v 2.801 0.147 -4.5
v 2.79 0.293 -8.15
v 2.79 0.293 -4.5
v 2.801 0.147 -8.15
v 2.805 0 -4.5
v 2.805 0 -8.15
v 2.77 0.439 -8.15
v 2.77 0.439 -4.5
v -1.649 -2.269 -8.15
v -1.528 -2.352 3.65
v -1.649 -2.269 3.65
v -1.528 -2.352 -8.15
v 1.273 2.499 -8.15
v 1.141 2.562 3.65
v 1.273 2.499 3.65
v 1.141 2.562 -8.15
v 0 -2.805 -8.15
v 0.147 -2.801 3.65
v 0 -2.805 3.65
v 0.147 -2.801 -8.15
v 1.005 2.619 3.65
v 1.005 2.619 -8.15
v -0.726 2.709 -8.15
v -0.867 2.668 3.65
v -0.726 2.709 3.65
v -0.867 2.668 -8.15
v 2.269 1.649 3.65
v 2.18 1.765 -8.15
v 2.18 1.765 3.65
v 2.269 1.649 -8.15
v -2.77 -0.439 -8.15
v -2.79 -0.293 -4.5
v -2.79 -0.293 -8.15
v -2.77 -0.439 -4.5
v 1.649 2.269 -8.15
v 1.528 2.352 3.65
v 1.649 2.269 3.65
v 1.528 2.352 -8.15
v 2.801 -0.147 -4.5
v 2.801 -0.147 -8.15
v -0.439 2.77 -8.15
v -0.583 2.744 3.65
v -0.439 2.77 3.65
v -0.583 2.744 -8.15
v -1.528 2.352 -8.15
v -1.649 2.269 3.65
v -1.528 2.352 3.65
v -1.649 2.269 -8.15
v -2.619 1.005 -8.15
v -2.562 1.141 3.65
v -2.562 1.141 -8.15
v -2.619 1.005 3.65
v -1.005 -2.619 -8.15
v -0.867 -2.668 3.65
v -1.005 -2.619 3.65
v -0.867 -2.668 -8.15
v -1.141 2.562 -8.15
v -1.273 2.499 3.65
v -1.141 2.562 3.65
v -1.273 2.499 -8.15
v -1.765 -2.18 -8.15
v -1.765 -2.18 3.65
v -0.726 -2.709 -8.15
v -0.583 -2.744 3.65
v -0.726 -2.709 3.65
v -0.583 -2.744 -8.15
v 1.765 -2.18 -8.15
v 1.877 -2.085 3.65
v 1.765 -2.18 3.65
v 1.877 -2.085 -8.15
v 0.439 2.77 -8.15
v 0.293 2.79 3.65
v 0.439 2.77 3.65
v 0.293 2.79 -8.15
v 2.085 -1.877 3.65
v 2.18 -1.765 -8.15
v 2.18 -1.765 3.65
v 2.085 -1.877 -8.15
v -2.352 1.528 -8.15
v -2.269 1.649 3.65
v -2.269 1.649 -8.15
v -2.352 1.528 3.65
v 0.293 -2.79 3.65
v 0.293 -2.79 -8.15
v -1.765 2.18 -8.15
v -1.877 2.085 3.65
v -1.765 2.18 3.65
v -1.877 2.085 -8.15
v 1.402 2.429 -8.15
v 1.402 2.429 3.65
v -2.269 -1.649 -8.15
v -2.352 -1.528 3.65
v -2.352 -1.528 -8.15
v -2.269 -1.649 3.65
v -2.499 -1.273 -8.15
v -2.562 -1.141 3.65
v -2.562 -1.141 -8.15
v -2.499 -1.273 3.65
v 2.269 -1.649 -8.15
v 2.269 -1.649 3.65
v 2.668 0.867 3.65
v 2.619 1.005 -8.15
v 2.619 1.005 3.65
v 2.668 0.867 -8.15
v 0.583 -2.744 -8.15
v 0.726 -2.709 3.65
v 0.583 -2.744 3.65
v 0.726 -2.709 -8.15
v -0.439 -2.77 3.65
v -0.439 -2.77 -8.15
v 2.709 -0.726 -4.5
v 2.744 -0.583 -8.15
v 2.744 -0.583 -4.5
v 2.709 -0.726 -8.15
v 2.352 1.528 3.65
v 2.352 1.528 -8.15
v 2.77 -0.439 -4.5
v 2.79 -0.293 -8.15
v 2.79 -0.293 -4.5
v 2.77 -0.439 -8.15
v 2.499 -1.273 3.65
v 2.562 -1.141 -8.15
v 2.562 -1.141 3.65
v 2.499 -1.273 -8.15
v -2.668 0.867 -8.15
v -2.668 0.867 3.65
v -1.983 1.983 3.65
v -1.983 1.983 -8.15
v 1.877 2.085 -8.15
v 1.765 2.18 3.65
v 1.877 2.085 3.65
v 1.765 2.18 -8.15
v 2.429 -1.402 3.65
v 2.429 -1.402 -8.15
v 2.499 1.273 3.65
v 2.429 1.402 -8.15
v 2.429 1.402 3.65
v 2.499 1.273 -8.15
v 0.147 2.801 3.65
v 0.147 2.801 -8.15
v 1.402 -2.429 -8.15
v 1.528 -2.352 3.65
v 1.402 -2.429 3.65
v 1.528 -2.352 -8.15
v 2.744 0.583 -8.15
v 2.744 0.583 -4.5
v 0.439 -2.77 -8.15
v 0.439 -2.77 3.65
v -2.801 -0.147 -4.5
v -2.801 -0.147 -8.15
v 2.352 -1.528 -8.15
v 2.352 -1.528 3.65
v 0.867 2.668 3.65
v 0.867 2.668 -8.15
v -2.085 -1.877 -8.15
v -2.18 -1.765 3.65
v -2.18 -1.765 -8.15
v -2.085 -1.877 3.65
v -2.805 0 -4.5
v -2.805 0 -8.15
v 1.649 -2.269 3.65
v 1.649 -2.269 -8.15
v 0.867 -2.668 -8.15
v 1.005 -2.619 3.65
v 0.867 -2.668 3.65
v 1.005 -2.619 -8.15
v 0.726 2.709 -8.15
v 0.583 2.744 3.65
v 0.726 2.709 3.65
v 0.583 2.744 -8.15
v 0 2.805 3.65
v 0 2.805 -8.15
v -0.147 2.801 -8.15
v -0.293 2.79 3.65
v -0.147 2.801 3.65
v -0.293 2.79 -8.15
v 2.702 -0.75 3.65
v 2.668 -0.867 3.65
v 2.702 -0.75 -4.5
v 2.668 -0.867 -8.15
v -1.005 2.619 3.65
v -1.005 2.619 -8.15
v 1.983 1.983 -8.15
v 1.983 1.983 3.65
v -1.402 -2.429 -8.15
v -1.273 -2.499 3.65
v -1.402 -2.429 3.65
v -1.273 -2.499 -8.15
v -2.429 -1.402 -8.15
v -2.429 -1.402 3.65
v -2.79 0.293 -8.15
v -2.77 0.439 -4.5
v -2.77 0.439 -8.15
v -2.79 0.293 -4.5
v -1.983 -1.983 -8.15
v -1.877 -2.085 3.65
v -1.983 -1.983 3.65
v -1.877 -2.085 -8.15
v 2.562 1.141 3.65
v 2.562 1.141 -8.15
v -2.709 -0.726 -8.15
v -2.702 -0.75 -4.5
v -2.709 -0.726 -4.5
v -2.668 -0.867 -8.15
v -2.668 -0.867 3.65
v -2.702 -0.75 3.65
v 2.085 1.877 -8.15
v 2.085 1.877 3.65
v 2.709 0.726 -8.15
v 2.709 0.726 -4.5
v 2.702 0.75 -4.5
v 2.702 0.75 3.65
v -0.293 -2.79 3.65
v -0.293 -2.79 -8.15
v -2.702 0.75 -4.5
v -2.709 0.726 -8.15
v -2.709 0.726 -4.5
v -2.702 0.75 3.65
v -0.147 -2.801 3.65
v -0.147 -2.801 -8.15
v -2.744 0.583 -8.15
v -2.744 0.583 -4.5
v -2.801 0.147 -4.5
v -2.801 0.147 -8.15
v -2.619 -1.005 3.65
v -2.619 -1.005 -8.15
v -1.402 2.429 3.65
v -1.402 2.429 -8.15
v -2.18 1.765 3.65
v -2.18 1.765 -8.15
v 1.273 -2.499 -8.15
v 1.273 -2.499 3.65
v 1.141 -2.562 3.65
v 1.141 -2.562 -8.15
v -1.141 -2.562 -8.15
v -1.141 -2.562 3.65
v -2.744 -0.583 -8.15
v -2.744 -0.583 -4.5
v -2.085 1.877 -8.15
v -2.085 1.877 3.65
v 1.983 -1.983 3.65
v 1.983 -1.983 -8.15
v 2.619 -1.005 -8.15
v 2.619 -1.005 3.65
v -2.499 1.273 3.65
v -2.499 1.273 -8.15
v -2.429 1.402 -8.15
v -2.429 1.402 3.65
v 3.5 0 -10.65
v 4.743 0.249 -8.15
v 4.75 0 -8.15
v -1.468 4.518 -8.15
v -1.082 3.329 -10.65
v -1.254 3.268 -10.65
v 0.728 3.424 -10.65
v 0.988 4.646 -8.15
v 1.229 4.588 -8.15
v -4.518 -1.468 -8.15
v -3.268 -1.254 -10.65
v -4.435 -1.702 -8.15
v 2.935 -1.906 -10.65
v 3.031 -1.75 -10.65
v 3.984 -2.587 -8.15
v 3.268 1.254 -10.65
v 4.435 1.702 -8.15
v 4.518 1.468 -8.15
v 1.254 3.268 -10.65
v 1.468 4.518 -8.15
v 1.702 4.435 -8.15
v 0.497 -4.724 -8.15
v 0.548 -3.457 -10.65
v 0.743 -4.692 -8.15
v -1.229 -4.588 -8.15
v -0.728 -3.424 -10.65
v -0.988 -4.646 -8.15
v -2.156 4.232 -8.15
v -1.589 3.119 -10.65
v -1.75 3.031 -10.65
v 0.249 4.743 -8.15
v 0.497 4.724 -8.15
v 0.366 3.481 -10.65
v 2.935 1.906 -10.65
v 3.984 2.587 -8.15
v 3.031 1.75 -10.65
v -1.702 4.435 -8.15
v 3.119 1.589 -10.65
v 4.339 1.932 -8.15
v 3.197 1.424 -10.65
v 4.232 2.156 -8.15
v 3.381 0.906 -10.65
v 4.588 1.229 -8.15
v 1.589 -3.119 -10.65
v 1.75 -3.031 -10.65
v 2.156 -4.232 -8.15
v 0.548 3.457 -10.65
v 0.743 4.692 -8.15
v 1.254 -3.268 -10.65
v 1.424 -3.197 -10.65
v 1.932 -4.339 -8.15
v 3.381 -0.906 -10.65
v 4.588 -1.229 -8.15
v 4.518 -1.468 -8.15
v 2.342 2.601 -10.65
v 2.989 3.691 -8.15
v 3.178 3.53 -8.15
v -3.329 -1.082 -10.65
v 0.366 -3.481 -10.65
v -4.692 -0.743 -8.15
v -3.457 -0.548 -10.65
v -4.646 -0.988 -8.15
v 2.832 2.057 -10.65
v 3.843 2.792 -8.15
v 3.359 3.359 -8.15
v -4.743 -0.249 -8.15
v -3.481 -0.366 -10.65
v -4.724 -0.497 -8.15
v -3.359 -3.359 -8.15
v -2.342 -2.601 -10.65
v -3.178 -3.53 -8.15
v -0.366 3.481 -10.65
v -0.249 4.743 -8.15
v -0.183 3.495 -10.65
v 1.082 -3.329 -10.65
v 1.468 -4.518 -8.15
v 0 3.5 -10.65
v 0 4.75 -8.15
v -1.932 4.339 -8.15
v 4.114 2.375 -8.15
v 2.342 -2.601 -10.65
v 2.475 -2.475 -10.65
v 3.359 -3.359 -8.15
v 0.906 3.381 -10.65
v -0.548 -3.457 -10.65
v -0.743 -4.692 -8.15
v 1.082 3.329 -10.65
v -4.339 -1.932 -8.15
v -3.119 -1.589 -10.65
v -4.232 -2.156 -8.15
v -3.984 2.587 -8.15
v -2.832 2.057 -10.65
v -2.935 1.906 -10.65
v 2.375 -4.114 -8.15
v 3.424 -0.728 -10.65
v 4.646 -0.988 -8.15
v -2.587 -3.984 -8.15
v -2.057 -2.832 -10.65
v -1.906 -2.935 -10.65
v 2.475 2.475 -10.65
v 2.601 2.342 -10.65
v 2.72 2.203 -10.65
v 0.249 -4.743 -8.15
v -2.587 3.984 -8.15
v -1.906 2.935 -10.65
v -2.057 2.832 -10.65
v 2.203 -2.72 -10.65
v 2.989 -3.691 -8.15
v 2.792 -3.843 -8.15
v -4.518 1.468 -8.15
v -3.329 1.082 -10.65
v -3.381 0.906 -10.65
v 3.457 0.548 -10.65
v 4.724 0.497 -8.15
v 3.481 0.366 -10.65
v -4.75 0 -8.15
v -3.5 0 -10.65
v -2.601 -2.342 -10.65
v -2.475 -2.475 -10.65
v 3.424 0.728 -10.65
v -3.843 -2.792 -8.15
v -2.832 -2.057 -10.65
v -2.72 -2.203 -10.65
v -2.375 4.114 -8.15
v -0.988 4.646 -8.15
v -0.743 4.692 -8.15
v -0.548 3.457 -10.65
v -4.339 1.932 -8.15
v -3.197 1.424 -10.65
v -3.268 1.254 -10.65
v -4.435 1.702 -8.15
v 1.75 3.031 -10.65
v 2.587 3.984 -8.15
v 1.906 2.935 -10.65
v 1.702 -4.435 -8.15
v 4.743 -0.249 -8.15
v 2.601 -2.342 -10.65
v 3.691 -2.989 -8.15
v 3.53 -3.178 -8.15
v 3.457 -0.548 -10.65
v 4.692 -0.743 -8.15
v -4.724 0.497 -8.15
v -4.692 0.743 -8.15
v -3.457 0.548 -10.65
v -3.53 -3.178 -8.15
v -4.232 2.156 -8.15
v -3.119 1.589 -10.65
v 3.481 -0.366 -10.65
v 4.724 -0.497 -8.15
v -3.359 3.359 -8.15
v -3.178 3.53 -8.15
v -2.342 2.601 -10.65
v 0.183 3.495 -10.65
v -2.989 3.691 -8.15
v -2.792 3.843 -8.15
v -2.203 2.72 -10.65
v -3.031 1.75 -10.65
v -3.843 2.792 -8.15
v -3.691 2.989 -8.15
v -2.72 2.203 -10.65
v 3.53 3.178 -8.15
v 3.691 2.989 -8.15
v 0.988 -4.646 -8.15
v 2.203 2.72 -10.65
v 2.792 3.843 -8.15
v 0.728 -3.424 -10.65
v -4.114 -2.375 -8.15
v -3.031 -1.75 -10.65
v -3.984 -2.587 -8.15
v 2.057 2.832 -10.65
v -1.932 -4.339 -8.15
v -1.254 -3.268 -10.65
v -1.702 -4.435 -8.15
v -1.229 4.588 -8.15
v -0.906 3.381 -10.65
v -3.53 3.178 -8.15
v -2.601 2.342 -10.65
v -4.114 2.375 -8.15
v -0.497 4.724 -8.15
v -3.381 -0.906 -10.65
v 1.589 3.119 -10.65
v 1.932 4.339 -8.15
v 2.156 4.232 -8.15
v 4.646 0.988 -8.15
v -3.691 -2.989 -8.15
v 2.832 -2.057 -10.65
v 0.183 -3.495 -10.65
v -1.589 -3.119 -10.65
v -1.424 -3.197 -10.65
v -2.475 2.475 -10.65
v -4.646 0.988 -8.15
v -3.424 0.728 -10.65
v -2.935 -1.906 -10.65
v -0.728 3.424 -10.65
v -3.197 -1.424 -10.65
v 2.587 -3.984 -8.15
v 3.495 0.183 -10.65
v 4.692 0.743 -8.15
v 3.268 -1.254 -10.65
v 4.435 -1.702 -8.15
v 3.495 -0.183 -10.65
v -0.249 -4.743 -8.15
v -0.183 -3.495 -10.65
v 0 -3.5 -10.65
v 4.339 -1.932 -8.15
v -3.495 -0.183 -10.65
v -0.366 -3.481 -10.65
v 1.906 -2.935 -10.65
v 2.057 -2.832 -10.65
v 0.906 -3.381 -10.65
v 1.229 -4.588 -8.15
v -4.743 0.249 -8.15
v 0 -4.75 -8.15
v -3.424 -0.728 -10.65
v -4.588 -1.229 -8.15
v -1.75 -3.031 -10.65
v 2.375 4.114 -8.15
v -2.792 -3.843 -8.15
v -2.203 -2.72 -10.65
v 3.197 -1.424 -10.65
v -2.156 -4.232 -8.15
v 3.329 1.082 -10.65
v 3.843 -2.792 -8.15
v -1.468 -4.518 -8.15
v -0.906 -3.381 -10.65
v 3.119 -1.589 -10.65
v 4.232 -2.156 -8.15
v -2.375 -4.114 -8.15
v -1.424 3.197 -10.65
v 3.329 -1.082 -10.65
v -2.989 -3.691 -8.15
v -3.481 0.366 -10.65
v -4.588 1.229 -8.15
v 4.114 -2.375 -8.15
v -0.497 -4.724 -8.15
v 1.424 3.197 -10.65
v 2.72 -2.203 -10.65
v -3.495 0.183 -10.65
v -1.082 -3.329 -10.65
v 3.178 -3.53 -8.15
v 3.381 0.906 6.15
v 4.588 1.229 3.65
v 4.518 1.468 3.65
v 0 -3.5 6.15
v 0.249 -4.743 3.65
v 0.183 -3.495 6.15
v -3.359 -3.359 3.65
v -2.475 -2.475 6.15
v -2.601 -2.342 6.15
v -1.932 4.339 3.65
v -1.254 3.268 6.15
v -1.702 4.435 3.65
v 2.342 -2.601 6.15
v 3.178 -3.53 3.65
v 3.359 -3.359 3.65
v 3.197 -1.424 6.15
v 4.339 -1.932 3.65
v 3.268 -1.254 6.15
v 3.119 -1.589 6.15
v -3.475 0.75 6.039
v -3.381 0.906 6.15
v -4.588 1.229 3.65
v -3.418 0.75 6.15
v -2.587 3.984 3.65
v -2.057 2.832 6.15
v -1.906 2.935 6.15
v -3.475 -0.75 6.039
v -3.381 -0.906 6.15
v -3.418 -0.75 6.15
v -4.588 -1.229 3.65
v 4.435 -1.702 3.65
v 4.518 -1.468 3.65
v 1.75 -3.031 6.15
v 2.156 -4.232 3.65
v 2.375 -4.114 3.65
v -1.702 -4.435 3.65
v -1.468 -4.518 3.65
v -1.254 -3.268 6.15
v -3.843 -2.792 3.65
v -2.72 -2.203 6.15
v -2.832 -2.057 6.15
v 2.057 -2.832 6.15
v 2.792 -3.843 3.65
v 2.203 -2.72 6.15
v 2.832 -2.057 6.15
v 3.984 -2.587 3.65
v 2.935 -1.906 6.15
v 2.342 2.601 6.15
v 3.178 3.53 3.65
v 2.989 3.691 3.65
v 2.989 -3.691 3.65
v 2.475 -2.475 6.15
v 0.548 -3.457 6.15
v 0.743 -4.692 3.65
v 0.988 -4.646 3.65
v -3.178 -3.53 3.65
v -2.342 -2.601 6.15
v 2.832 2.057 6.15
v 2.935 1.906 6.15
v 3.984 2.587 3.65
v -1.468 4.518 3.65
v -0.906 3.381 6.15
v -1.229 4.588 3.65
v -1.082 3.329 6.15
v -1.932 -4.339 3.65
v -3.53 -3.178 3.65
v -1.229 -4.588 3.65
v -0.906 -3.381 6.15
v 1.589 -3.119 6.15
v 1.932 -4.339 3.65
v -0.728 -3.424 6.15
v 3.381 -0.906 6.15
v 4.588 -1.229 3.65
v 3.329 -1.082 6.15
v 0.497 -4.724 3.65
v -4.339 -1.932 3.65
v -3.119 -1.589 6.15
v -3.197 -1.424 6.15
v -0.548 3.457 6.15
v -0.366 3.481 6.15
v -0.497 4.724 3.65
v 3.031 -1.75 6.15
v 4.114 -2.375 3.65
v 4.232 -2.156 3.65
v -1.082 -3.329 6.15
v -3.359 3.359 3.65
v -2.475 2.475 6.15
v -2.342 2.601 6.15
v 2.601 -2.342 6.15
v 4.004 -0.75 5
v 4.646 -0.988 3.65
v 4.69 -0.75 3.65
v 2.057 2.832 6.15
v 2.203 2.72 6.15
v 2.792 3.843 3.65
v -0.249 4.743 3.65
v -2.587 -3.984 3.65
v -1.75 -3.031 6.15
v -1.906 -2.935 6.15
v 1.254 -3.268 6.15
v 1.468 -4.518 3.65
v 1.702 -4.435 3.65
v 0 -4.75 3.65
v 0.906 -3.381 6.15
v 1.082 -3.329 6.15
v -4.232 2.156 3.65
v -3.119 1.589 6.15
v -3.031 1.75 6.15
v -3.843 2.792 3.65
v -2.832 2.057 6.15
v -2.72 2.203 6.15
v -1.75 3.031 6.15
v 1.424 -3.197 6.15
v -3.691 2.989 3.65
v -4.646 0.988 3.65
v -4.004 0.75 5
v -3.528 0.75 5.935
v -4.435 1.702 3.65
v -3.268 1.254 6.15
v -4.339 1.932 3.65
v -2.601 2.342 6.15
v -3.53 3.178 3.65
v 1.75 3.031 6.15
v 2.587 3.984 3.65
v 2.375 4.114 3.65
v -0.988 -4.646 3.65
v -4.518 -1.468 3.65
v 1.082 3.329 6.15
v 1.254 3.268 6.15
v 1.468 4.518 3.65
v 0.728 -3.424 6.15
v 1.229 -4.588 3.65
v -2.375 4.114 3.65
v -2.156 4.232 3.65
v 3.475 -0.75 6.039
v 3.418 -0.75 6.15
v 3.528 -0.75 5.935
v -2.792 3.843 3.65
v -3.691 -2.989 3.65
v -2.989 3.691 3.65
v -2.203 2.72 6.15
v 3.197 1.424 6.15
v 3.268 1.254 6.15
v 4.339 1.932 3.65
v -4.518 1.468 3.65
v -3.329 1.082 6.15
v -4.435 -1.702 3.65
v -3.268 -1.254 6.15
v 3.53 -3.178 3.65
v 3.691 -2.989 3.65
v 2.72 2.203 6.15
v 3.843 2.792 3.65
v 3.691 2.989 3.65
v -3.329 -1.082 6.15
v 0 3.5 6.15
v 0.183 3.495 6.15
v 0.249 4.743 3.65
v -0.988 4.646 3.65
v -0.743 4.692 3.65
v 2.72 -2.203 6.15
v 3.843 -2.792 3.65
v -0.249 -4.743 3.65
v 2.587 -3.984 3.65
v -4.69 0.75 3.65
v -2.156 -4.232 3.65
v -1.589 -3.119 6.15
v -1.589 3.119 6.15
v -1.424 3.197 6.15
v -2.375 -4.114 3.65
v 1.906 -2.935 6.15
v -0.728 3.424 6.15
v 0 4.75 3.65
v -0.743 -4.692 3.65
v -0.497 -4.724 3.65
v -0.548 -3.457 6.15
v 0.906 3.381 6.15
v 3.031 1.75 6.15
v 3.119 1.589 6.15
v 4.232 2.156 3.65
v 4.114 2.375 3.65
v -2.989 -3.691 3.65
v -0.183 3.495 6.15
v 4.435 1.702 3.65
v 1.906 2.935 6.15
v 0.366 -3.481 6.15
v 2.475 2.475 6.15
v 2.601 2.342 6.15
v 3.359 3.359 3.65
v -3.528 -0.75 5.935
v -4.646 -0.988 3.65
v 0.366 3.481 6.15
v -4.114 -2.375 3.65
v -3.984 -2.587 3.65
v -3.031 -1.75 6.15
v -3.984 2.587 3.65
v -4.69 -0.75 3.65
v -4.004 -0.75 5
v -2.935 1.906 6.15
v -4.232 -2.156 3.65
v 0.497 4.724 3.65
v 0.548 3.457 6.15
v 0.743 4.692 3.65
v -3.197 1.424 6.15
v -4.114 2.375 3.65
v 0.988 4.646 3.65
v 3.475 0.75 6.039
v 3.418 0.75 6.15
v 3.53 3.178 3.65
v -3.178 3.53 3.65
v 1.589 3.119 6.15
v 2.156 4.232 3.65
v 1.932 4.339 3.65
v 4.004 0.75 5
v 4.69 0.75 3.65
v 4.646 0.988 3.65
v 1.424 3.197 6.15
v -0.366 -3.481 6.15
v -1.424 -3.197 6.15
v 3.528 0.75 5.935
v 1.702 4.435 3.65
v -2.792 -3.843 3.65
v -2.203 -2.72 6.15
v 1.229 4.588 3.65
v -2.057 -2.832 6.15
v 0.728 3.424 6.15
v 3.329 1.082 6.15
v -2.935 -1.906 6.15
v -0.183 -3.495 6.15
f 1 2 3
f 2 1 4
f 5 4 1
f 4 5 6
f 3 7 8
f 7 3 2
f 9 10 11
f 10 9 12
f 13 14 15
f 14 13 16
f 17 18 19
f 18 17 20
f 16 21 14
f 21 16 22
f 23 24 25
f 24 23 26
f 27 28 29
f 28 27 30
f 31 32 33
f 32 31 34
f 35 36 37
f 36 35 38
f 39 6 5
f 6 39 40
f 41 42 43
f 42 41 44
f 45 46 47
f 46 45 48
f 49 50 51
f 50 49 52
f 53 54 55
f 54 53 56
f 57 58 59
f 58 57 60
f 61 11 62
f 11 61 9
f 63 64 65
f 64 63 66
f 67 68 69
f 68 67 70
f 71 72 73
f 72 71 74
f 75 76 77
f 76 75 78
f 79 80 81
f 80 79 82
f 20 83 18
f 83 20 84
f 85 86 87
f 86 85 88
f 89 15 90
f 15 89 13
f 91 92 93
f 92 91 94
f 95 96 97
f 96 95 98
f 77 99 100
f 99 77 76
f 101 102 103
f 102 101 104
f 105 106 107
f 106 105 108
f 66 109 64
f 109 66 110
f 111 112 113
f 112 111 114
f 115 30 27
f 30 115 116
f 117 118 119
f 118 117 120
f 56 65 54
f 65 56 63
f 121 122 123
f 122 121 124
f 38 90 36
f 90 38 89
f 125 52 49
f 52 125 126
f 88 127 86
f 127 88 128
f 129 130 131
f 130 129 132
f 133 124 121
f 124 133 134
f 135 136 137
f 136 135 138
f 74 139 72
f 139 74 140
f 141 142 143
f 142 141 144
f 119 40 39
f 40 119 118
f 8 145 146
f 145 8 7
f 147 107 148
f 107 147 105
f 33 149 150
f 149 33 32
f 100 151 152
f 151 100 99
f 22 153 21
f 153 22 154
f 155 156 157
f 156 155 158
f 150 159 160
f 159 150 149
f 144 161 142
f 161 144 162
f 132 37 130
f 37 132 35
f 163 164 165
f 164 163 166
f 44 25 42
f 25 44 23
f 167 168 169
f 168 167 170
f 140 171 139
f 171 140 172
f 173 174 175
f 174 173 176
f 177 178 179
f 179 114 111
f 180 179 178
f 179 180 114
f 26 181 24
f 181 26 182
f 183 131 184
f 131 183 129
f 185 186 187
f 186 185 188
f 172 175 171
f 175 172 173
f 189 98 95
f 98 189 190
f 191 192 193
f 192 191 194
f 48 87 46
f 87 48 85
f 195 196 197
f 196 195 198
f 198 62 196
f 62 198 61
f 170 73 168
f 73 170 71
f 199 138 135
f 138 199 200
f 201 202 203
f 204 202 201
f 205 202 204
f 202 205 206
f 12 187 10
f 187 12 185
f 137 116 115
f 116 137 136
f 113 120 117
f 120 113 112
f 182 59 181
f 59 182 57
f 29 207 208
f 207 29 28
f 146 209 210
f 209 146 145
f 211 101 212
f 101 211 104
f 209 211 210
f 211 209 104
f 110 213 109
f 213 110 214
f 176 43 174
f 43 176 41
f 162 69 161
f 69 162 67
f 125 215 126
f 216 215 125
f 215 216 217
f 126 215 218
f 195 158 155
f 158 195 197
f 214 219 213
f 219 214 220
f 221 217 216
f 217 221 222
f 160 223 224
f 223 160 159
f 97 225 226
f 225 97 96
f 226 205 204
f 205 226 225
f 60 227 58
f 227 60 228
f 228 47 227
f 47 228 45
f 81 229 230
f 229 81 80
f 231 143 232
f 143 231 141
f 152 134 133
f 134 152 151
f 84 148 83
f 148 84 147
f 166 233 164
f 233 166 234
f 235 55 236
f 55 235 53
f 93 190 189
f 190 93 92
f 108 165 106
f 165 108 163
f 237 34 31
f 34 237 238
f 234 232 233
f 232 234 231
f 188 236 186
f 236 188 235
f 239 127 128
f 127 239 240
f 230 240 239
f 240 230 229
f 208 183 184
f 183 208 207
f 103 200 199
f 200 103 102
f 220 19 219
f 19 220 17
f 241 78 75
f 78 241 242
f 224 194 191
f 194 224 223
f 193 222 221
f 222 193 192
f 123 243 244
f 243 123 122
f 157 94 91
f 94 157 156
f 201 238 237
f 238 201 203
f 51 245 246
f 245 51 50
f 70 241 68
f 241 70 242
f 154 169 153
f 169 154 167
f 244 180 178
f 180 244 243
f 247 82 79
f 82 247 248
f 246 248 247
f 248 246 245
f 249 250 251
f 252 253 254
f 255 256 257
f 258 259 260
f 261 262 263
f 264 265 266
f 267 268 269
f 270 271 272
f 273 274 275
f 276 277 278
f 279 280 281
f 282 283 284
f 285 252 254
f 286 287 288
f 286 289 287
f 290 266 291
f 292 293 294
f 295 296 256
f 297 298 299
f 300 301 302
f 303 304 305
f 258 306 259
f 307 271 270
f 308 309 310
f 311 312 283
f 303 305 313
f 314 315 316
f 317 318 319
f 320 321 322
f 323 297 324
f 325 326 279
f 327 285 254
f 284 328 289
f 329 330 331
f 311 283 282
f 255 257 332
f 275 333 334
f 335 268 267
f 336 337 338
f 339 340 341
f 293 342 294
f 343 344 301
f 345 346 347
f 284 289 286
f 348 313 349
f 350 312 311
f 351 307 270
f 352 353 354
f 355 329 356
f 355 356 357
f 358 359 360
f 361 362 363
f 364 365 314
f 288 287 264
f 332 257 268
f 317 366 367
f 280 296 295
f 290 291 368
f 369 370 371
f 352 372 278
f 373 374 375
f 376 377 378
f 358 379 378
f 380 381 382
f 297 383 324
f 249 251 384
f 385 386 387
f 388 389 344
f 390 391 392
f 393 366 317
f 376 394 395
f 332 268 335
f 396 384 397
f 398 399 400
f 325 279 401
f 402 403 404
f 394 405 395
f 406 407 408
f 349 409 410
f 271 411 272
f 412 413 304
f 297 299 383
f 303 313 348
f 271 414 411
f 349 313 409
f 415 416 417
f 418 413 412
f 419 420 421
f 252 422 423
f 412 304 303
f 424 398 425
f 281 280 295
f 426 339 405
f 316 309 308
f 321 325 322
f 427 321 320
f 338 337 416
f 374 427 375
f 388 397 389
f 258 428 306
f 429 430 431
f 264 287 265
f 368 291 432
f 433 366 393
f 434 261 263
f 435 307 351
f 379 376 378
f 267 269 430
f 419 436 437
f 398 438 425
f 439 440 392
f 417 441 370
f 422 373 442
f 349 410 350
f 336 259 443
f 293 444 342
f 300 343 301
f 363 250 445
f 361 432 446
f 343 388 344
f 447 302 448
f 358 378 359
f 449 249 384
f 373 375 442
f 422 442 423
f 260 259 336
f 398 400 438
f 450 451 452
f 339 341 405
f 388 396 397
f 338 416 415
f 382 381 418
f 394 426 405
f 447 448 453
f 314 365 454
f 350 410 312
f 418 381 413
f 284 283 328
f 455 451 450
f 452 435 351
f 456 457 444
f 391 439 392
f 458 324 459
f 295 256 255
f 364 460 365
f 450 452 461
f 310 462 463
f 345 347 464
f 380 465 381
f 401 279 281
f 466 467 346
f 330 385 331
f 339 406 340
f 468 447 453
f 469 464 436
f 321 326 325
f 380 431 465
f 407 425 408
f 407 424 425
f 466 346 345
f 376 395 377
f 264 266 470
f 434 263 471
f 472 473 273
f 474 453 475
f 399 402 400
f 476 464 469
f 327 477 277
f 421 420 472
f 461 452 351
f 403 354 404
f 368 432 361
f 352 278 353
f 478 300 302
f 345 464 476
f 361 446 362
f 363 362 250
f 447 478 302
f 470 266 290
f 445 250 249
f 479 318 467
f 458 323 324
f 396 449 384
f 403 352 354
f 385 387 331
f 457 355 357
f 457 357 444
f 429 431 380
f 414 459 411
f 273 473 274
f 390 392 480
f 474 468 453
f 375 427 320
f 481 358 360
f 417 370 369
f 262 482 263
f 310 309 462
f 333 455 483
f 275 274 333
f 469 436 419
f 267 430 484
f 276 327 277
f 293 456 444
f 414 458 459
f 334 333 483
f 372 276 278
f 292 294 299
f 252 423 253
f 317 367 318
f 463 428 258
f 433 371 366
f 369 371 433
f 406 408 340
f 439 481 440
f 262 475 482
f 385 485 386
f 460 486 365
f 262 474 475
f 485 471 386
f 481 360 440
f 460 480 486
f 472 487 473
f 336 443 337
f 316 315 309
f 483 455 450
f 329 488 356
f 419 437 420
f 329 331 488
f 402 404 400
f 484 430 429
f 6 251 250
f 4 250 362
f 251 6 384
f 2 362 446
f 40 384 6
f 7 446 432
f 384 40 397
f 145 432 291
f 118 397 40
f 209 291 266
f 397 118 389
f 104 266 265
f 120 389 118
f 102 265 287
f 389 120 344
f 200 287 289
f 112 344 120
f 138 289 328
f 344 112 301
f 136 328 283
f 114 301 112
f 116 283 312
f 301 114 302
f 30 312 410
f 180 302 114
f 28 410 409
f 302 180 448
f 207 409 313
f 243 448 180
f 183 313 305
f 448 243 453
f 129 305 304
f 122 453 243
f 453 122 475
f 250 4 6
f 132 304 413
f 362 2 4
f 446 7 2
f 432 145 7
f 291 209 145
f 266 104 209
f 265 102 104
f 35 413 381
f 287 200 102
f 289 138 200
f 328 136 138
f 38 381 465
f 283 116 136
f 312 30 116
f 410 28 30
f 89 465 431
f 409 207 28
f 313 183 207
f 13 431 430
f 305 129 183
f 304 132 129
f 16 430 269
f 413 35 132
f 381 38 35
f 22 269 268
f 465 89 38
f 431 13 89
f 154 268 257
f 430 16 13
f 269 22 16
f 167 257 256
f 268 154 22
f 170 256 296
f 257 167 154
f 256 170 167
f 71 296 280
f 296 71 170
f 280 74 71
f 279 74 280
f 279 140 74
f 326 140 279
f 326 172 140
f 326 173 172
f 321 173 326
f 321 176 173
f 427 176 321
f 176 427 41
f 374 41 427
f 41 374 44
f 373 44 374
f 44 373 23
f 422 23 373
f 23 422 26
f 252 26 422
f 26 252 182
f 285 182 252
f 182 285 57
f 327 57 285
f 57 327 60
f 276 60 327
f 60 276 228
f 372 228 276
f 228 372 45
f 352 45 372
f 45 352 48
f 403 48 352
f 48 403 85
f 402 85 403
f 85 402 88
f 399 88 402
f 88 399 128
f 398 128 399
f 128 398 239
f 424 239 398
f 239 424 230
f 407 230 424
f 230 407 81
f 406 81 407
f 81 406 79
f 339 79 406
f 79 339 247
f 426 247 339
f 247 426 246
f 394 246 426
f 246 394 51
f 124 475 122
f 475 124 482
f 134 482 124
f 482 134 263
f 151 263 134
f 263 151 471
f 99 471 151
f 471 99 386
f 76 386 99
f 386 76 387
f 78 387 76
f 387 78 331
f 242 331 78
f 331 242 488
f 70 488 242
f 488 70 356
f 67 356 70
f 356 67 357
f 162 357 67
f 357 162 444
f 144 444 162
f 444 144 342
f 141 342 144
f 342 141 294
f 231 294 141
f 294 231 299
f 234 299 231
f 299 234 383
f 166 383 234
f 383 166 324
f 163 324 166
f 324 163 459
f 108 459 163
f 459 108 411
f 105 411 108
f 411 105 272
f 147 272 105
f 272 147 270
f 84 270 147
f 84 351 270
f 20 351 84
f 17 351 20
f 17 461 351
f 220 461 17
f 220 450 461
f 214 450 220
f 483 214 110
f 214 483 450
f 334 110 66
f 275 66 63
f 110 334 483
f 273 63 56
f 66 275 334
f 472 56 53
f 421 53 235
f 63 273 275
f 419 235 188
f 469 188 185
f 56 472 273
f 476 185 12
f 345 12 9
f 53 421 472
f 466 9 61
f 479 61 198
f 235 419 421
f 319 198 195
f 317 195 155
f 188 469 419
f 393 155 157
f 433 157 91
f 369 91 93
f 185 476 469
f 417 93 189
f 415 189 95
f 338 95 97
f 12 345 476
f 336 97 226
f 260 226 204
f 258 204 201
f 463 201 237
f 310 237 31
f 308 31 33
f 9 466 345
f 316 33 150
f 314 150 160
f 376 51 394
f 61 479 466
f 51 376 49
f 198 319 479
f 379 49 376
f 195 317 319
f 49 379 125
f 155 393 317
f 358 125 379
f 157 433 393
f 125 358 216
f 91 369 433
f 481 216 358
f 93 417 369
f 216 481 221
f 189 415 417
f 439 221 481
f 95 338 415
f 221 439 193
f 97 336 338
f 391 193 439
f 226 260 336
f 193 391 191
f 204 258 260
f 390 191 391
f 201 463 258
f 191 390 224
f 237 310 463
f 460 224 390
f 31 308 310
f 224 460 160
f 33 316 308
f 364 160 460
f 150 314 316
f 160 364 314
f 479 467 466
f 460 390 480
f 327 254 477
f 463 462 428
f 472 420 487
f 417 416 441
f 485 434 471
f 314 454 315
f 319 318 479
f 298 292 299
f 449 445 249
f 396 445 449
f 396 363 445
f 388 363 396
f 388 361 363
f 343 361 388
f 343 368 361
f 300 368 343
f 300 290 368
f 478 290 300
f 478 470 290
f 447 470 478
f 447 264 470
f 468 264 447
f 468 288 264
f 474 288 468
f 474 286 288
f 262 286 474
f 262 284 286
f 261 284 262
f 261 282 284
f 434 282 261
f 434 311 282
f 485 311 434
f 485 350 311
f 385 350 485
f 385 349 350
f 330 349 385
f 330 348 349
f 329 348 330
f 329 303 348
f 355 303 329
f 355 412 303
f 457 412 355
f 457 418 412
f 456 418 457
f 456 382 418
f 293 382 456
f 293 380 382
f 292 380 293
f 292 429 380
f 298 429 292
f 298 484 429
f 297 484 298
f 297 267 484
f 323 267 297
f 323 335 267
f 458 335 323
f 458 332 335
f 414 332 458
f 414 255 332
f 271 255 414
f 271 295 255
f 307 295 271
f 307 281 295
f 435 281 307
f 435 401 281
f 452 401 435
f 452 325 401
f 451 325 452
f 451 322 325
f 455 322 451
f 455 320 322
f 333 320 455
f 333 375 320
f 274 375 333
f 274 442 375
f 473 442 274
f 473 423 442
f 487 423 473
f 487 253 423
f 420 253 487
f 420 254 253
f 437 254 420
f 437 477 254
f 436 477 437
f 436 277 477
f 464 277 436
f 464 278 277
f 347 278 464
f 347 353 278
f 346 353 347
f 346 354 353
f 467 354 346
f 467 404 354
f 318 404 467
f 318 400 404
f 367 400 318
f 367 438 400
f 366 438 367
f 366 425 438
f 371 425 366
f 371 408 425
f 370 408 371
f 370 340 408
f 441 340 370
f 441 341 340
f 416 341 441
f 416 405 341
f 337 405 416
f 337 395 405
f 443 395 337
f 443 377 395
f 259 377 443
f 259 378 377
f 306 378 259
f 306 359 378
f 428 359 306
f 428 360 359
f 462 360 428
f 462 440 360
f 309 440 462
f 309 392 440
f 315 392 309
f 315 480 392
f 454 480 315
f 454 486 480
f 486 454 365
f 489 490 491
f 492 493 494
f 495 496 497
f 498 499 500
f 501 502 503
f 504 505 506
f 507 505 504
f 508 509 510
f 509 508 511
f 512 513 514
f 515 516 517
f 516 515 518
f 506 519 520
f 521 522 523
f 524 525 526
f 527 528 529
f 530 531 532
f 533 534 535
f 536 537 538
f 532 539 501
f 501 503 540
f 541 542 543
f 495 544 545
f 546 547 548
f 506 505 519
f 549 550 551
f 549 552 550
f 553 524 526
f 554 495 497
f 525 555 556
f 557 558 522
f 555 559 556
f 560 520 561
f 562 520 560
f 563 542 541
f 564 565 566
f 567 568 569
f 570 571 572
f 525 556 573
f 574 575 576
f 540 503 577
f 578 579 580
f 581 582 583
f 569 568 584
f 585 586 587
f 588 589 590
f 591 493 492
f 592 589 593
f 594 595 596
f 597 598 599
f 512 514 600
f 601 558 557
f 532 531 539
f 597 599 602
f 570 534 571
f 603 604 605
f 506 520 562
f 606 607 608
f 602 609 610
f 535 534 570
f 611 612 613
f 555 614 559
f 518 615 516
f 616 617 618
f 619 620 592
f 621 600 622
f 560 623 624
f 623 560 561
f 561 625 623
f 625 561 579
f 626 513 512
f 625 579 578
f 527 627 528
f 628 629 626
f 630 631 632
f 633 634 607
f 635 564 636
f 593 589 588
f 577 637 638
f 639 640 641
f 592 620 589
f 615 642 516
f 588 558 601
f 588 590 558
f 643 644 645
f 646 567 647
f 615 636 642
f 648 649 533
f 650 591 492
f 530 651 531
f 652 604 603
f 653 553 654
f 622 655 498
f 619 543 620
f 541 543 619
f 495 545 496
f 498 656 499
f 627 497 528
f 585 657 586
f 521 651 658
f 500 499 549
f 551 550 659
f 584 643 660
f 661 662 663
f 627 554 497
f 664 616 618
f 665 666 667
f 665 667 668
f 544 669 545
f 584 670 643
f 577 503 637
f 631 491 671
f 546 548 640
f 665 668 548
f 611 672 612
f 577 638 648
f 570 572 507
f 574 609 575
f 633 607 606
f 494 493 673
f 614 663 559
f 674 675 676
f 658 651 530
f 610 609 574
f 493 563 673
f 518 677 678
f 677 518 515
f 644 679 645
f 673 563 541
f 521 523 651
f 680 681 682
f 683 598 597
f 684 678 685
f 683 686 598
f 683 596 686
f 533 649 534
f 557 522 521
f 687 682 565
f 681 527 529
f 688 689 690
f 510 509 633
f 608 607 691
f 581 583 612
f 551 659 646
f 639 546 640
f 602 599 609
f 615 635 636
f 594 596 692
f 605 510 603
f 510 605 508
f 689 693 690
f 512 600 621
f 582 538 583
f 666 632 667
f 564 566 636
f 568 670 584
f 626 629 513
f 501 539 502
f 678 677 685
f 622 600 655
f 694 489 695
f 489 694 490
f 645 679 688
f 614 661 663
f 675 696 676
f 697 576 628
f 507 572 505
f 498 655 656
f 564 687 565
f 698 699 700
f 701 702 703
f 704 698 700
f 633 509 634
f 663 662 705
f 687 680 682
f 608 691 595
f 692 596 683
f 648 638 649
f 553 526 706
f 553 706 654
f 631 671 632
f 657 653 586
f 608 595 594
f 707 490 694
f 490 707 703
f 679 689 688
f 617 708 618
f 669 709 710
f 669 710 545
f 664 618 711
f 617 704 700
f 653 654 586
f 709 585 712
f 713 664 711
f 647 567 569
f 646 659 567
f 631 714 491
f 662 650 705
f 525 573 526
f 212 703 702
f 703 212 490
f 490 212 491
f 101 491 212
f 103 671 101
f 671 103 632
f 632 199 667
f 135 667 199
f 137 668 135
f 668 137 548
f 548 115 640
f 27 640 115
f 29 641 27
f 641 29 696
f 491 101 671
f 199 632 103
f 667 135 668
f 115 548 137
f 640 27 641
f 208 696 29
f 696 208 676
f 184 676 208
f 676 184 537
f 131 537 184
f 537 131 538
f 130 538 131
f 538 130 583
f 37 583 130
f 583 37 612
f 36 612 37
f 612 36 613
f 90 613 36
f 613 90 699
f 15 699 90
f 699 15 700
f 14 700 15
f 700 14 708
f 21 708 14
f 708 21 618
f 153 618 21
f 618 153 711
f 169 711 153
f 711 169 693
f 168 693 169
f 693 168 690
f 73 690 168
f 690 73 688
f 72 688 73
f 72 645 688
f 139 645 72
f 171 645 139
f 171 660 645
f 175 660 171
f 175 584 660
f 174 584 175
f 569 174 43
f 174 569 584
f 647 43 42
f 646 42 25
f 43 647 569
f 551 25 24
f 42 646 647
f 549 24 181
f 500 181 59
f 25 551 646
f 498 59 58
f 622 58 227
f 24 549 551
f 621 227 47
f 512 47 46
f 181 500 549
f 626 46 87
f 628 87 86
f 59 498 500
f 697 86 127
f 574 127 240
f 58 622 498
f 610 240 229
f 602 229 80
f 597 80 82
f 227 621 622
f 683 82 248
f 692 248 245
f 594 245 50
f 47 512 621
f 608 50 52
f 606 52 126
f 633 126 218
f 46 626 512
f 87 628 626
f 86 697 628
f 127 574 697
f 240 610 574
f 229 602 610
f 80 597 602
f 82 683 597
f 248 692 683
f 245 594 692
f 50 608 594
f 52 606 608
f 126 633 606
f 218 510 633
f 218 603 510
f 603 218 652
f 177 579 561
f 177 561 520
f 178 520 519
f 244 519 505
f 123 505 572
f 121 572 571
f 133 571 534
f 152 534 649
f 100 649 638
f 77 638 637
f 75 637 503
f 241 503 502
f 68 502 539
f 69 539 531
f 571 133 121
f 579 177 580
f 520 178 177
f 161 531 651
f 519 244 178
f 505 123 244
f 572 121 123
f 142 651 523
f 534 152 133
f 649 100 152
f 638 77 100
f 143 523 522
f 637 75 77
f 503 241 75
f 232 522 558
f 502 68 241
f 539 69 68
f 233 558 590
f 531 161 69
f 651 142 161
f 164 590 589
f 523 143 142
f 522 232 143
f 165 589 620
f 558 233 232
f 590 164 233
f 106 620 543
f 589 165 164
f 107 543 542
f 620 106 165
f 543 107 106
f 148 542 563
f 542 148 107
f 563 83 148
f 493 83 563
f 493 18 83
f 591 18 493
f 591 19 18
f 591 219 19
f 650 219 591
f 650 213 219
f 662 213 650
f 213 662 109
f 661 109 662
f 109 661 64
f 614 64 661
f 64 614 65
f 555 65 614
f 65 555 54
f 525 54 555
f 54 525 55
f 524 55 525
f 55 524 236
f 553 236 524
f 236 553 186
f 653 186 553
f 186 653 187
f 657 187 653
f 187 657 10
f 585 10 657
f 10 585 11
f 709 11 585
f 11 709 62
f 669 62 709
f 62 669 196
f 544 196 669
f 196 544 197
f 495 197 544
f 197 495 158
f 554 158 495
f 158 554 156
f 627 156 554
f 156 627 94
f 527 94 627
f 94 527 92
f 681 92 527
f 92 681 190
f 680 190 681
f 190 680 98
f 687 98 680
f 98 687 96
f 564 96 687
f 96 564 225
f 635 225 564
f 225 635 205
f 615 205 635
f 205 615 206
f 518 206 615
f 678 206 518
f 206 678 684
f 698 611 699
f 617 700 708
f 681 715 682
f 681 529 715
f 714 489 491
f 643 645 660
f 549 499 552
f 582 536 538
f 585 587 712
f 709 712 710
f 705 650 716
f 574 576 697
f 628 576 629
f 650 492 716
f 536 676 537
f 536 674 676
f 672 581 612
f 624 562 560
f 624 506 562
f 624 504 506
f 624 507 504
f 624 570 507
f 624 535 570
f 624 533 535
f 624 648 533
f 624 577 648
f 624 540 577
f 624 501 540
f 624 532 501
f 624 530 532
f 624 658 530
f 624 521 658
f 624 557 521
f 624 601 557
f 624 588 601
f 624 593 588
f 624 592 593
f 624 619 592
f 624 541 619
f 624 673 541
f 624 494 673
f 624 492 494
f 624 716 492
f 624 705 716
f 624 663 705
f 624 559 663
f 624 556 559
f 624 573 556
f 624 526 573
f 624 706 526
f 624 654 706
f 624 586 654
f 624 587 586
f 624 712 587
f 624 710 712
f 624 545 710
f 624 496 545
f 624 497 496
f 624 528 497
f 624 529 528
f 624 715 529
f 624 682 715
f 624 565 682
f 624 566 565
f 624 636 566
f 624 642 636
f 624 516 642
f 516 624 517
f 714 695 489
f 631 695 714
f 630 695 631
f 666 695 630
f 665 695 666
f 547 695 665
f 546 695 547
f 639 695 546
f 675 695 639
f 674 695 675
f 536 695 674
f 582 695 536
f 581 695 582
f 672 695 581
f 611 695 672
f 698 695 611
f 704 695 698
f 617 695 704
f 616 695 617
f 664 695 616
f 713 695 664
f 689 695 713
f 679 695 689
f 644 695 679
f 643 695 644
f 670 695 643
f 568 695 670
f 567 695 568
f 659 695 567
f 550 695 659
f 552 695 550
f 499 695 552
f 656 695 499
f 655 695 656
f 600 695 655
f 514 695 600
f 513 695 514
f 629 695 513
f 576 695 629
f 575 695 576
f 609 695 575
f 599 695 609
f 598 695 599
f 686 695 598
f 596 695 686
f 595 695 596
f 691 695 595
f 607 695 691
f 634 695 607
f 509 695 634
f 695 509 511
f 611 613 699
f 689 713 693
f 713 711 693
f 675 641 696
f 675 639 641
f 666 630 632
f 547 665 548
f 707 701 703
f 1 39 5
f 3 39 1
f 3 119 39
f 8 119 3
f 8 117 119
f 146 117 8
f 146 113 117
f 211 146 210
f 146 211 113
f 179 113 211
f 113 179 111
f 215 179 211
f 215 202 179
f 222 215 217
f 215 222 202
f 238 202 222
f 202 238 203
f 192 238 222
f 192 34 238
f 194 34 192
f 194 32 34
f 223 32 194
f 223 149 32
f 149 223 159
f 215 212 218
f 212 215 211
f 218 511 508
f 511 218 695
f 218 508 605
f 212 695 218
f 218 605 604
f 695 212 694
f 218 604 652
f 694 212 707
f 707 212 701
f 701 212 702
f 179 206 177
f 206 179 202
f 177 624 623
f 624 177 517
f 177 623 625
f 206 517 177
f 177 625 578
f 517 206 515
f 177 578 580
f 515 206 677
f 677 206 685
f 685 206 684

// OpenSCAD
// file: lib.scad
PULLEY_DIAMETER      =  22;
PULLEY_EXTRA         =   3         -2;
PULLEY_AXIS_DIAMETER =   8;

BALL_DIAMETER        =   4.5;
BALLS_PER_TURN       =  14;
BALLS_SPACING        =  19 / 3;

WALL_THICKNESS       =   3;
HANDLE_LENGTH        = 100;
PLAY                 =   0.13;

// computed
R = PULLEY_DIAMETER/2 + BALL_DIAMETER/2;
PULLEYS_DISTANCE = HANDLE_LENGTH - PULLEY_DIAMETER*.75;

ATOM = 0.01;
$fn = 120;


module pulley_struct() {
    th = 2.5;
    cylinder(d=PULLEY_AXIS_DIAMETER + th*2, h=BALL_DIAMETER*5, center=true);

    for (i=[0:2:BALLS_PER_TURN-1]) {
        rotate([0, 0, 360/BALLS_PER_TURN * (i + .5*0)])
        translate([0, -PULLEY_DIAMETER/2, 0])
        cube([th, PULLEY_DIAMETER, BALL_DIAMETER*5], center= true);
    }
    
    difference() {
        cylinder(d=PULLEY_DIAMETER + PULLEY_EXTRA*2, h= BALL_DIAMETER*5-ATOM, center=true);
        cylinder(d=PULLEY_DIAMETER-th*1.5 , h=BALL_DIAMETER*5, center=true);
    }    
}

module pulley_teeth() {
    difference() {
        cylinder(d=PULLEY_DIAMETER + PULLEY_EXTRA, h= BALL_DIAMETER+PLAY*2*0);

        for (i=[0:1:BALLS_PER_TURN-1]) {
            rotate([0, 0, 360/BALLS_PER_TURN*i])
            translate([R-.5, 0, BALL_DIAMETER/2+PLAY*0]) {
                sphere(d=BALL_DIAMETER + PLAY*2, $fn=60);
            }
        }

        cylinder(d=PULLEY_AXIS_DIAMETER+PLAY*4, h=BALL_DIAMETER*5, center=true);
    }
}

module pulley() {
    intersection() {
        pulley_struct();
        pulley_teeth();
    }
}

module chain() {
    for (i=[BALLS_PER_TURN/2:1:BALLS_PER_TURN]) {
        rotate([0, 0, 360/BALLS_PER_TURN*i])
        translate([R, 0, BALL_DIAMETER/2+PLAY]) {
            sphere(d=BALL_DIAMETER, $fn=60);
        }
    }

    for (k=[-1, 1]) for(j=[1:18]) {
        translate([R*k, j*BALLS_SPACING, BALL_DIAMETER/2+PLAY])
        sphere(d=BALL_DIAMETER, $fn=60);
    }
}

module handle_0(extra=0) {
    y = -PULLEY_DIAMETER/2 - BALL_DIAMETER-PLAY*2-WALL_THICKNESS;
    inner = BALL_DIAMETER + PLAY*6;
    hull()
    for (k=[-1, 1]) {
        translate([R*k, y, BALL_DIAMETER/2+PLAY])
        rotate([-90, 0, 0])
        cylinder(d=inner+extra*2, h=HANDLE_LENGTH + PULLEY_DIAMETER);
    }
}

module handle() {
    difference() {
        translate([0, -WALL_THICKNESS, 0])
        handle_0(WALL_THICKNESS);
        handle_0();

        // hole for axis
        cylinder(d=PULLEY_AXIS_DIAMETER, BALL_DIAMETER*4, center=true);

        // hole for axis
        translate([0, PULLEYS_DISTANCE, 0])
        cylinder(d=PULLEY_AXIS_DIAMETER*.75, BALL_DIAMETER*4, center=true);
    }
}

module rivet(axis_diameter) {
    head_thickness = 2.5;
    head_extra = 1;
    h = BALL_DIAMETER + PLAY*6 + head_thickness*3;
    difference() {
        union() {
            translate([0, 0, -head_thickness-PLAY*3 - head_thickness/2])
            cylinder(d=axis_diameter - PLAY*3, h=h);

            translate([0, 0, BALL_DIAMETER + PLAY*5 + WALL_THICKNESS])
            cylinder(d1=PULLEY_AXIS_DIAMETER+head_extra+.5, d2=PULLEY_AXIS_DIAMETER-1, h=head_thickness);

            translate([0, 0, -PLAY*5 - WALL_THICKNESS - head_thickness])
            cylinder(d2=PULLEY_AXIS_DIAMETER+head_extra+.5, d1=PULLEY_AXIS_DIAMETER-1, h=head_thickness);
        }

        w = head_extra * 1.5;
        translate([-axis_diameter, -w/2, -h+BALL_DIAMETER])
        cube([axis_diameter*2, w, h]);
    }
}

module rivet1() { rivet(PULLEY_AXIS_DIAMETER); }
module rivet2() { rivet(PULLEY_AXIS_DIAMETER*.75); }

module rivets(dist=PULLEYS_DISTANCE) {
    rivet1();
    translate([0, dist, 0]) rivet2();
}

module pulleys(dist=PULLEYS_DISTANCE) {
    pulley();
    translate([0, dist, 0]) pulley();
}

module cross_cutter() {
    intersection() {
        children();
        translate([0, -HANDLE_LENGTH/2, -BALL_DIAMETER*2.5])
        cube([PULLEY_DIAMETER, HANDLE_LENGTH*2, BALL_DIAMETER*6]);
    }
}

if (0) cross_cutter() {
    union() {
        handle();
        chain();
        pulleys();
%        rivets();
    }
} else {
    %cross_cutter() handle();

    rivets();
    pulleys();
}
// main file
use <lib.scad>

dist = 30;

/*
pulleys(dist);
translate([dist*.5, dist*.5, 10.65])
scale([1, 1, -1])
rivets(dist);
*/

scale([1, 1, -1])
rivet2();
